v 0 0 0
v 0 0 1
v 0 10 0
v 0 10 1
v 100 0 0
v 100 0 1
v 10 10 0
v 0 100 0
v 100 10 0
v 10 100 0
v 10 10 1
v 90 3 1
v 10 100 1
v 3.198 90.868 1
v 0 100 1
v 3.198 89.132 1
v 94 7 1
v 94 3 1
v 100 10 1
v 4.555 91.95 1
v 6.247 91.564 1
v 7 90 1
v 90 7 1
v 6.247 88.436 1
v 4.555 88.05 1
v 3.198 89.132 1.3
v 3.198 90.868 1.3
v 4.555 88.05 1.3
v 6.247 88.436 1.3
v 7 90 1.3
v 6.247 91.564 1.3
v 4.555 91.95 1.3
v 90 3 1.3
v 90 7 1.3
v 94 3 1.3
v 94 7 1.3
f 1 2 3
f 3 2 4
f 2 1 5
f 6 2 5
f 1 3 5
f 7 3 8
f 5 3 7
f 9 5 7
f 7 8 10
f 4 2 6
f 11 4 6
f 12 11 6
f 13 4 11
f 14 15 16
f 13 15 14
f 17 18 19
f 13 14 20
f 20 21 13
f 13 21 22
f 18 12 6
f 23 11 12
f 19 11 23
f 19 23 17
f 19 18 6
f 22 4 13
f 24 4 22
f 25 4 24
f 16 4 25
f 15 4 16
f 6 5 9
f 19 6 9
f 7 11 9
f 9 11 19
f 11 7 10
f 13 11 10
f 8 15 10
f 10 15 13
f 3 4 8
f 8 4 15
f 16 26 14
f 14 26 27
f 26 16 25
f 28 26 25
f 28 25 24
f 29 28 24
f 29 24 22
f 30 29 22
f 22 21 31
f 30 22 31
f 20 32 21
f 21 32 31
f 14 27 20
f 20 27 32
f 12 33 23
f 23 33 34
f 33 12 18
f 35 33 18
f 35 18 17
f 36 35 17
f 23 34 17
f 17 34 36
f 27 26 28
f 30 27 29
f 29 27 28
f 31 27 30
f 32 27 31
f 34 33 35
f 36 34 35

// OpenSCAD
thickness=1;
arm_length=100;
arm_width=10;

cube([arm_length, arm_width, thickness]);
translate([arm_width, 0, 0]) rotate([0, 0, 90]) cube([arm_length, arm_width, thickness]);

// X axis marker
color("blue") translate([0.9 * arm_length, 3, 0.8]) cube([4, 4, 0.5]);

// y axis marker
color("red") translate([5, 0.9 * arm_length, 0.8]) cylinder(r=2, h=0.5);
